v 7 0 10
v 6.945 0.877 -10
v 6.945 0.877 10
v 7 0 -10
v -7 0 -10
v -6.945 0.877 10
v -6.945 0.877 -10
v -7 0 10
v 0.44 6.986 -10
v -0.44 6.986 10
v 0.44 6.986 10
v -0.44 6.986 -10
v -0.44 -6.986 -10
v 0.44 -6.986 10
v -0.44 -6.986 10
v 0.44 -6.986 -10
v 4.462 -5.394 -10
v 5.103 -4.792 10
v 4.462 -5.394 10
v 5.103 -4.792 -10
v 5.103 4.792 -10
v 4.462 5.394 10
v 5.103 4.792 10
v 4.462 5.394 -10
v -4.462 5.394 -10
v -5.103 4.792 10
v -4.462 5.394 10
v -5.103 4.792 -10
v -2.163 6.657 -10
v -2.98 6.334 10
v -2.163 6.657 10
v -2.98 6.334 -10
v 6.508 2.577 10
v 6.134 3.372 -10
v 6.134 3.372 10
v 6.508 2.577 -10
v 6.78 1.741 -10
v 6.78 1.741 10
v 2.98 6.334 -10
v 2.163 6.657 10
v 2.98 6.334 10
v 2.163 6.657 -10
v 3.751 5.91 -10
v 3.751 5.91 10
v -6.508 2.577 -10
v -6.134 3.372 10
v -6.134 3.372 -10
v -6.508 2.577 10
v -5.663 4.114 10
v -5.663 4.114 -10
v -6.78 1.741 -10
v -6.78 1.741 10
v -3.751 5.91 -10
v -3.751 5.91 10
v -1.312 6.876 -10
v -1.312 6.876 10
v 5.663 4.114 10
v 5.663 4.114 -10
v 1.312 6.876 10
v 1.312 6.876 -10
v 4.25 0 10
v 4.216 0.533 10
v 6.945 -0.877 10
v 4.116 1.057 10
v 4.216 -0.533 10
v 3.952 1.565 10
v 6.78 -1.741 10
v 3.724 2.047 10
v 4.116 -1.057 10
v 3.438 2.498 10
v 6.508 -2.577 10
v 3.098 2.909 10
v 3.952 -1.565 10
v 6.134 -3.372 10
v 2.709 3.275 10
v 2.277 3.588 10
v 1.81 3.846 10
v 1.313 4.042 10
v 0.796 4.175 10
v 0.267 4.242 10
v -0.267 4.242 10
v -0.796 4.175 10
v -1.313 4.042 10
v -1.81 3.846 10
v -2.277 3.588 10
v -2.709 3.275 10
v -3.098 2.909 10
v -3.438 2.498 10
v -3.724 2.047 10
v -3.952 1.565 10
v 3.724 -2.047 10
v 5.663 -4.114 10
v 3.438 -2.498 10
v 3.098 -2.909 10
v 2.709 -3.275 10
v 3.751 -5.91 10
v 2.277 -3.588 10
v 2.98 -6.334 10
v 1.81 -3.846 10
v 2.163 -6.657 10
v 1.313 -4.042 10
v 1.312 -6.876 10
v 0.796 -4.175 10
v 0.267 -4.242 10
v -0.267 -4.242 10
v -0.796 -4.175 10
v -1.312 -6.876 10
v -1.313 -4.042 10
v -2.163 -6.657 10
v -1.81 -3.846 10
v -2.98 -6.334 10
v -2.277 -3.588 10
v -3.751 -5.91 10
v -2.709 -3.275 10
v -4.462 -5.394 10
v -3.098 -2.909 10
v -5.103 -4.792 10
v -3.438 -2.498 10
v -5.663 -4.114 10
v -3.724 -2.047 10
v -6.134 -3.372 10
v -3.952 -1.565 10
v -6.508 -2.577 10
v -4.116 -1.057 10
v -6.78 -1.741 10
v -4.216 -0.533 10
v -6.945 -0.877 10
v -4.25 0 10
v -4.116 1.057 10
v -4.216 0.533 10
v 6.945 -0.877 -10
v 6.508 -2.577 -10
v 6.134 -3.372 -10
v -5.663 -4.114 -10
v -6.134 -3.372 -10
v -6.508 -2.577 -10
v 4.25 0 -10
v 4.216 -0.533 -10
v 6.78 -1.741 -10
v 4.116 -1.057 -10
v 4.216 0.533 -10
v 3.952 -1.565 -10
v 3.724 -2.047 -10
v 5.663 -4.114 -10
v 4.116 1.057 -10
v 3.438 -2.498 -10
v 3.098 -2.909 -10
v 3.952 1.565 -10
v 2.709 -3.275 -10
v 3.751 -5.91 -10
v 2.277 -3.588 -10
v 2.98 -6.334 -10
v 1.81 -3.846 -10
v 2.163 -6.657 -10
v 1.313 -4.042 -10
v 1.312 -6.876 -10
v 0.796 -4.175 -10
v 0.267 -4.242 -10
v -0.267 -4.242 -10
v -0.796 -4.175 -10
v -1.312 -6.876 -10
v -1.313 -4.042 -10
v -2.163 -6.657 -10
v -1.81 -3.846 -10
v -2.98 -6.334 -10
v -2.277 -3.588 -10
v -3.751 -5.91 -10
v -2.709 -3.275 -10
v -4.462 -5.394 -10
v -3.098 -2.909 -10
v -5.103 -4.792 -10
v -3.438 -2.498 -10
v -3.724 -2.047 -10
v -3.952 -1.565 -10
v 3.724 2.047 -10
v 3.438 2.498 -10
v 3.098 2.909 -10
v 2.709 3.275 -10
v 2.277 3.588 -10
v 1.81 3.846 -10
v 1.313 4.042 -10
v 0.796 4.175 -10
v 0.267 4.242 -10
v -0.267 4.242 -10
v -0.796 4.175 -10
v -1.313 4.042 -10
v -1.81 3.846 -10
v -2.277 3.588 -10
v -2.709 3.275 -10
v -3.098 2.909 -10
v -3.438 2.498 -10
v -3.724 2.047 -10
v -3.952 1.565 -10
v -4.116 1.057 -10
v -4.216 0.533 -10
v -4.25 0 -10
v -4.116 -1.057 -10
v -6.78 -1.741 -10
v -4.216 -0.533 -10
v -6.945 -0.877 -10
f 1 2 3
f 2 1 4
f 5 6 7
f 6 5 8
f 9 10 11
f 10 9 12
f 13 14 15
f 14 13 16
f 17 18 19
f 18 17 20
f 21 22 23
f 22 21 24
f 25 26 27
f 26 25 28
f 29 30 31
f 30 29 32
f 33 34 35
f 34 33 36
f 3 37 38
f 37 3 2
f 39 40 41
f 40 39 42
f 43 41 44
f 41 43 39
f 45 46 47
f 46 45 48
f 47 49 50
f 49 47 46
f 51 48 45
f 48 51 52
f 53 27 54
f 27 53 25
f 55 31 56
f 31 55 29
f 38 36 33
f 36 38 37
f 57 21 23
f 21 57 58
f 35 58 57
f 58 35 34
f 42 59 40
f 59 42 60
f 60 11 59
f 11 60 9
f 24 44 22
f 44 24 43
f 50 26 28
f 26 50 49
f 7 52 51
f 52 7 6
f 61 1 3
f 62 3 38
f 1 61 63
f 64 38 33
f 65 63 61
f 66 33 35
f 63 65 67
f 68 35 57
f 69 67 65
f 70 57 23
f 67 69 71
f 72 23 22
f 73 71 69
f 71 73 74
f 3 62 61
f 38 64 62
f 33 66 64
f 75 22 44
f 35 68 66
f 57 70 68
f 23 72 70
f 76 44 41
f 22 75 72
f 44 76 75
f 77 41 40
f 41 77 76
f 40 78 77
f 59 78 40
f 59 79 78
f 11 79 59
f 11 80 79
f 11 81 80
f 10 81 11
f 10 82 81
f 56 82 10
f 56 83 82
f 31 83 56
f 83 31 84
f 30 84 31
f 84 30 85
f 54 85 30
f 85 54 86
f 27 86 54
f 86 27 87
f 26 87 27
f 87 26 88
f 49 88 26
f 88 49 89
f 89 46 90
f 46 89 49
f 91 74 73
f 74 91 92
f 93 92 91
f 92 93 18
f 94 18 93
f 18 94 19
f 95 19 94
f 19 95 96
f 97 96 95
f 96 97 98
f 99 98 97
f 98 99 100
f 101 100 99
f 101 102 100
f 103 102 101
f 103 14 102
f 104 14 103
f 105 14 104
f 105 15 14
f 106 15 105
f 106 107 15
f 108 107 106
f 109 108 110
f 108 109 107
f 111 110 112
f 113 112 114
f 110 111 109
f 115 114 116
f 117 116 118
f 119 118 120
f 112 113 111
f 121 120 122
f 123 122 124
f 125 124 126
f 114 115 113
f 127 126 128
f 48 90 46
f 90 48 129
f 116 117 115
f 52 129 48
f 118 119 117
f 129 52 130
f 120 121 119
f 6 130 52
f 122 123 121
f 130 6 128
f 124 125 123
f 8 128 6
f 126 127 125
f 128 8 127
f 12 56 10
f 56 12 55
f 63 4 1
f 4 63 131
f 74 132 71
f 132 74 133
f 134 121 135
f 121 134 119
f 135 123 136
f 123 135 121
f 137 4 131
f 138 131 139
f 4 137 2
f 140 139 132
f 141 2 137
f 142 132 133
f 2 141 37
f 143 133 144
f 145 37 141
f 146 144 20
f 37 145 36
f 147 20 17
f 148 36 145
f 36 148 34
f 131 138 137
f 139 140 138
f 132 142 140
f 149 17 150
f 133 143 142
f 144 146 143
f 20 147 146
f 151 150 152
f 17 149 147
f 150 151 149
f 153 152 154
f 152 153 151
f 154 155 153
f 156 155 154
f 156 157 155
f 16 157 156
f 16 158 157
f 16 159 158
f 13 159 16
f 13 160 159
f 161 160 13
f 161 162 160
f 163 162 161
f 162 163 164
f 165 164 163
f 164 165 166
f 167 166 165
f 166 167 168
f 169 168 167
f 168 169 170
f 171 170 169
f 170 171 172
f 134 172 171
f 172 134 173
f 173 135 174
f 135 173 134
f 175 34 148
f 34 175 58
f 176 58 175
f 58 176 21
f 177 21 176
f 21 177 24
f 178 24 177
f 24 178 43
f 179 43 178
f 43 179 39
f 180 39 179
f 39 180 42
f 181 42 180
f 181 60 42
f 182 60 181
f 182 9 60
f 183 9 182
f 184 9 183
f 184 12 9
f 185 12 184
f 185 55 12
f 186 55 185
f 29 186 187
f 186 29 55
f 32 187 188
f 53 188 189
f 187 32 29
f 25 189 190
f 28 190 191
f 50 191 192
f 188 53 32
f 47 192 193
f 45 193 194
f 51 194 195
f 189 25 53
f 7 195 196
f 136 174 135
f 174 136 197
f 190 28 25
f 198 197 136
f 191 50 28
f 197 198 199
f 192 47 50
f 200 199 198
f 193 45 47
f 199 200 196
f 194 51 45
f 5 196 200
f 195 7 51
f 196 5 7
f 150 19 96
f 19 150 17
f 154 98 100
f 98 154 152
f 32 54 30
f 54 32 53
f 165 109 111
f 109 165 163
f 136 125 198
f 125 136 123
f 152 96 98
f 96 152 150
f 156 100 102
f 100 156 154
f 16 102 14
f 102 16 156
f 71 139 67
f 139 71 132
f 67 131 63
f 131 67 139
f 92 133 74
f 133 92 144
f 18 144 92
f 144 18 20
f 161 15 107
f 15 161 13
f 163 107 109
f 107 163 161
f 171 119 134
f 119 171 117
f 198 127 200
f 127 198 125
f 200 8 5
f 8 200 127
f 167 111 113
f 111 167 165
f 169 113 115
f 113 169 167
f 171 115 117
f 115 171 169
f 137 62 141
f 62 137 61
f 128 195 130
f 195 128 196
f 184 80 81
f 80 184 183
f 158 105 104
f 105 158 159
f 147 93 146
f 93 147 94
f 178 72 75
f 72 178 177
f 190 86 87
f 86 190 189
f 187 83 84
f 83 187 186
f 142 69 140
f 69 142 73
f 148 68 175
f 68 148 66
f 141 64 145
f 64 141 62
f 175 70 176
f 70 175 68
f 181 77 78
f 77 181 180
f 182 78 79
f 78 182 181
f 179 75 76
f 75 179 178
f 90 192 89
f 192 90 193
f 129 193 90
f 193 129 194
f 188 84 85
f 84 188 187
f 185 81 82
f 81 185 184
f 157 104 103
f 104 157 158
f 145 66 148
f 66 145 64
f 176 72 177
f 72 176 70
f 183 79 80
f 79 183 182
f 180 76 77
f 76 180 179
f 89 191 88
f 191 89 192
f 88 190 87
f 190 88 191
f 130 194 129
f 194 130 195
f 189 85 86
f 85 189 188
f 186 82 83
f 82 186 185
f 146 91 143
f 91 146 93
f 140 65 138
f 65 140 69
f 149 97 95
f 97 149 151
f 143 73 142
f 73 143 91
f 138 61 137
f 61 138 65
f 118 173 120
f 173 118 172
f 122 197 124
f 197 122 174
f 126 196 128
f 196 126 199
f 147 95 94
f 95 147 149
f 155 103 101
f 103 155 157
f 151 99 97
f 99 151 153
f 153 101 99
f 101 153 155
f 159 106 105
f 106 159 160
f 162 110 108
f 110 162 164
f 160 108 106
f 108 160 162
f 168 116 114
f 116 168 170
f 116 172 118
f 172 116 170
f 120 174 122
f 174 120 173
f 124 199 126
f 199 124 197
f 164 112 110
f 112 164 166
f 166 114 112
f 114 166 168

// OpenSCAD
$fn = 50;


difference() {
	union() {
		translate(v = [0, 0, -10.0000000000]) {
			cylinder(h = 20, r = 7.0000000000);
		}
	}
	union() {
		translate(v = [0, 0, -100.0000000000]) {
			cylinder(h = 200, r = 4.2500000000);
		}
	}
}
